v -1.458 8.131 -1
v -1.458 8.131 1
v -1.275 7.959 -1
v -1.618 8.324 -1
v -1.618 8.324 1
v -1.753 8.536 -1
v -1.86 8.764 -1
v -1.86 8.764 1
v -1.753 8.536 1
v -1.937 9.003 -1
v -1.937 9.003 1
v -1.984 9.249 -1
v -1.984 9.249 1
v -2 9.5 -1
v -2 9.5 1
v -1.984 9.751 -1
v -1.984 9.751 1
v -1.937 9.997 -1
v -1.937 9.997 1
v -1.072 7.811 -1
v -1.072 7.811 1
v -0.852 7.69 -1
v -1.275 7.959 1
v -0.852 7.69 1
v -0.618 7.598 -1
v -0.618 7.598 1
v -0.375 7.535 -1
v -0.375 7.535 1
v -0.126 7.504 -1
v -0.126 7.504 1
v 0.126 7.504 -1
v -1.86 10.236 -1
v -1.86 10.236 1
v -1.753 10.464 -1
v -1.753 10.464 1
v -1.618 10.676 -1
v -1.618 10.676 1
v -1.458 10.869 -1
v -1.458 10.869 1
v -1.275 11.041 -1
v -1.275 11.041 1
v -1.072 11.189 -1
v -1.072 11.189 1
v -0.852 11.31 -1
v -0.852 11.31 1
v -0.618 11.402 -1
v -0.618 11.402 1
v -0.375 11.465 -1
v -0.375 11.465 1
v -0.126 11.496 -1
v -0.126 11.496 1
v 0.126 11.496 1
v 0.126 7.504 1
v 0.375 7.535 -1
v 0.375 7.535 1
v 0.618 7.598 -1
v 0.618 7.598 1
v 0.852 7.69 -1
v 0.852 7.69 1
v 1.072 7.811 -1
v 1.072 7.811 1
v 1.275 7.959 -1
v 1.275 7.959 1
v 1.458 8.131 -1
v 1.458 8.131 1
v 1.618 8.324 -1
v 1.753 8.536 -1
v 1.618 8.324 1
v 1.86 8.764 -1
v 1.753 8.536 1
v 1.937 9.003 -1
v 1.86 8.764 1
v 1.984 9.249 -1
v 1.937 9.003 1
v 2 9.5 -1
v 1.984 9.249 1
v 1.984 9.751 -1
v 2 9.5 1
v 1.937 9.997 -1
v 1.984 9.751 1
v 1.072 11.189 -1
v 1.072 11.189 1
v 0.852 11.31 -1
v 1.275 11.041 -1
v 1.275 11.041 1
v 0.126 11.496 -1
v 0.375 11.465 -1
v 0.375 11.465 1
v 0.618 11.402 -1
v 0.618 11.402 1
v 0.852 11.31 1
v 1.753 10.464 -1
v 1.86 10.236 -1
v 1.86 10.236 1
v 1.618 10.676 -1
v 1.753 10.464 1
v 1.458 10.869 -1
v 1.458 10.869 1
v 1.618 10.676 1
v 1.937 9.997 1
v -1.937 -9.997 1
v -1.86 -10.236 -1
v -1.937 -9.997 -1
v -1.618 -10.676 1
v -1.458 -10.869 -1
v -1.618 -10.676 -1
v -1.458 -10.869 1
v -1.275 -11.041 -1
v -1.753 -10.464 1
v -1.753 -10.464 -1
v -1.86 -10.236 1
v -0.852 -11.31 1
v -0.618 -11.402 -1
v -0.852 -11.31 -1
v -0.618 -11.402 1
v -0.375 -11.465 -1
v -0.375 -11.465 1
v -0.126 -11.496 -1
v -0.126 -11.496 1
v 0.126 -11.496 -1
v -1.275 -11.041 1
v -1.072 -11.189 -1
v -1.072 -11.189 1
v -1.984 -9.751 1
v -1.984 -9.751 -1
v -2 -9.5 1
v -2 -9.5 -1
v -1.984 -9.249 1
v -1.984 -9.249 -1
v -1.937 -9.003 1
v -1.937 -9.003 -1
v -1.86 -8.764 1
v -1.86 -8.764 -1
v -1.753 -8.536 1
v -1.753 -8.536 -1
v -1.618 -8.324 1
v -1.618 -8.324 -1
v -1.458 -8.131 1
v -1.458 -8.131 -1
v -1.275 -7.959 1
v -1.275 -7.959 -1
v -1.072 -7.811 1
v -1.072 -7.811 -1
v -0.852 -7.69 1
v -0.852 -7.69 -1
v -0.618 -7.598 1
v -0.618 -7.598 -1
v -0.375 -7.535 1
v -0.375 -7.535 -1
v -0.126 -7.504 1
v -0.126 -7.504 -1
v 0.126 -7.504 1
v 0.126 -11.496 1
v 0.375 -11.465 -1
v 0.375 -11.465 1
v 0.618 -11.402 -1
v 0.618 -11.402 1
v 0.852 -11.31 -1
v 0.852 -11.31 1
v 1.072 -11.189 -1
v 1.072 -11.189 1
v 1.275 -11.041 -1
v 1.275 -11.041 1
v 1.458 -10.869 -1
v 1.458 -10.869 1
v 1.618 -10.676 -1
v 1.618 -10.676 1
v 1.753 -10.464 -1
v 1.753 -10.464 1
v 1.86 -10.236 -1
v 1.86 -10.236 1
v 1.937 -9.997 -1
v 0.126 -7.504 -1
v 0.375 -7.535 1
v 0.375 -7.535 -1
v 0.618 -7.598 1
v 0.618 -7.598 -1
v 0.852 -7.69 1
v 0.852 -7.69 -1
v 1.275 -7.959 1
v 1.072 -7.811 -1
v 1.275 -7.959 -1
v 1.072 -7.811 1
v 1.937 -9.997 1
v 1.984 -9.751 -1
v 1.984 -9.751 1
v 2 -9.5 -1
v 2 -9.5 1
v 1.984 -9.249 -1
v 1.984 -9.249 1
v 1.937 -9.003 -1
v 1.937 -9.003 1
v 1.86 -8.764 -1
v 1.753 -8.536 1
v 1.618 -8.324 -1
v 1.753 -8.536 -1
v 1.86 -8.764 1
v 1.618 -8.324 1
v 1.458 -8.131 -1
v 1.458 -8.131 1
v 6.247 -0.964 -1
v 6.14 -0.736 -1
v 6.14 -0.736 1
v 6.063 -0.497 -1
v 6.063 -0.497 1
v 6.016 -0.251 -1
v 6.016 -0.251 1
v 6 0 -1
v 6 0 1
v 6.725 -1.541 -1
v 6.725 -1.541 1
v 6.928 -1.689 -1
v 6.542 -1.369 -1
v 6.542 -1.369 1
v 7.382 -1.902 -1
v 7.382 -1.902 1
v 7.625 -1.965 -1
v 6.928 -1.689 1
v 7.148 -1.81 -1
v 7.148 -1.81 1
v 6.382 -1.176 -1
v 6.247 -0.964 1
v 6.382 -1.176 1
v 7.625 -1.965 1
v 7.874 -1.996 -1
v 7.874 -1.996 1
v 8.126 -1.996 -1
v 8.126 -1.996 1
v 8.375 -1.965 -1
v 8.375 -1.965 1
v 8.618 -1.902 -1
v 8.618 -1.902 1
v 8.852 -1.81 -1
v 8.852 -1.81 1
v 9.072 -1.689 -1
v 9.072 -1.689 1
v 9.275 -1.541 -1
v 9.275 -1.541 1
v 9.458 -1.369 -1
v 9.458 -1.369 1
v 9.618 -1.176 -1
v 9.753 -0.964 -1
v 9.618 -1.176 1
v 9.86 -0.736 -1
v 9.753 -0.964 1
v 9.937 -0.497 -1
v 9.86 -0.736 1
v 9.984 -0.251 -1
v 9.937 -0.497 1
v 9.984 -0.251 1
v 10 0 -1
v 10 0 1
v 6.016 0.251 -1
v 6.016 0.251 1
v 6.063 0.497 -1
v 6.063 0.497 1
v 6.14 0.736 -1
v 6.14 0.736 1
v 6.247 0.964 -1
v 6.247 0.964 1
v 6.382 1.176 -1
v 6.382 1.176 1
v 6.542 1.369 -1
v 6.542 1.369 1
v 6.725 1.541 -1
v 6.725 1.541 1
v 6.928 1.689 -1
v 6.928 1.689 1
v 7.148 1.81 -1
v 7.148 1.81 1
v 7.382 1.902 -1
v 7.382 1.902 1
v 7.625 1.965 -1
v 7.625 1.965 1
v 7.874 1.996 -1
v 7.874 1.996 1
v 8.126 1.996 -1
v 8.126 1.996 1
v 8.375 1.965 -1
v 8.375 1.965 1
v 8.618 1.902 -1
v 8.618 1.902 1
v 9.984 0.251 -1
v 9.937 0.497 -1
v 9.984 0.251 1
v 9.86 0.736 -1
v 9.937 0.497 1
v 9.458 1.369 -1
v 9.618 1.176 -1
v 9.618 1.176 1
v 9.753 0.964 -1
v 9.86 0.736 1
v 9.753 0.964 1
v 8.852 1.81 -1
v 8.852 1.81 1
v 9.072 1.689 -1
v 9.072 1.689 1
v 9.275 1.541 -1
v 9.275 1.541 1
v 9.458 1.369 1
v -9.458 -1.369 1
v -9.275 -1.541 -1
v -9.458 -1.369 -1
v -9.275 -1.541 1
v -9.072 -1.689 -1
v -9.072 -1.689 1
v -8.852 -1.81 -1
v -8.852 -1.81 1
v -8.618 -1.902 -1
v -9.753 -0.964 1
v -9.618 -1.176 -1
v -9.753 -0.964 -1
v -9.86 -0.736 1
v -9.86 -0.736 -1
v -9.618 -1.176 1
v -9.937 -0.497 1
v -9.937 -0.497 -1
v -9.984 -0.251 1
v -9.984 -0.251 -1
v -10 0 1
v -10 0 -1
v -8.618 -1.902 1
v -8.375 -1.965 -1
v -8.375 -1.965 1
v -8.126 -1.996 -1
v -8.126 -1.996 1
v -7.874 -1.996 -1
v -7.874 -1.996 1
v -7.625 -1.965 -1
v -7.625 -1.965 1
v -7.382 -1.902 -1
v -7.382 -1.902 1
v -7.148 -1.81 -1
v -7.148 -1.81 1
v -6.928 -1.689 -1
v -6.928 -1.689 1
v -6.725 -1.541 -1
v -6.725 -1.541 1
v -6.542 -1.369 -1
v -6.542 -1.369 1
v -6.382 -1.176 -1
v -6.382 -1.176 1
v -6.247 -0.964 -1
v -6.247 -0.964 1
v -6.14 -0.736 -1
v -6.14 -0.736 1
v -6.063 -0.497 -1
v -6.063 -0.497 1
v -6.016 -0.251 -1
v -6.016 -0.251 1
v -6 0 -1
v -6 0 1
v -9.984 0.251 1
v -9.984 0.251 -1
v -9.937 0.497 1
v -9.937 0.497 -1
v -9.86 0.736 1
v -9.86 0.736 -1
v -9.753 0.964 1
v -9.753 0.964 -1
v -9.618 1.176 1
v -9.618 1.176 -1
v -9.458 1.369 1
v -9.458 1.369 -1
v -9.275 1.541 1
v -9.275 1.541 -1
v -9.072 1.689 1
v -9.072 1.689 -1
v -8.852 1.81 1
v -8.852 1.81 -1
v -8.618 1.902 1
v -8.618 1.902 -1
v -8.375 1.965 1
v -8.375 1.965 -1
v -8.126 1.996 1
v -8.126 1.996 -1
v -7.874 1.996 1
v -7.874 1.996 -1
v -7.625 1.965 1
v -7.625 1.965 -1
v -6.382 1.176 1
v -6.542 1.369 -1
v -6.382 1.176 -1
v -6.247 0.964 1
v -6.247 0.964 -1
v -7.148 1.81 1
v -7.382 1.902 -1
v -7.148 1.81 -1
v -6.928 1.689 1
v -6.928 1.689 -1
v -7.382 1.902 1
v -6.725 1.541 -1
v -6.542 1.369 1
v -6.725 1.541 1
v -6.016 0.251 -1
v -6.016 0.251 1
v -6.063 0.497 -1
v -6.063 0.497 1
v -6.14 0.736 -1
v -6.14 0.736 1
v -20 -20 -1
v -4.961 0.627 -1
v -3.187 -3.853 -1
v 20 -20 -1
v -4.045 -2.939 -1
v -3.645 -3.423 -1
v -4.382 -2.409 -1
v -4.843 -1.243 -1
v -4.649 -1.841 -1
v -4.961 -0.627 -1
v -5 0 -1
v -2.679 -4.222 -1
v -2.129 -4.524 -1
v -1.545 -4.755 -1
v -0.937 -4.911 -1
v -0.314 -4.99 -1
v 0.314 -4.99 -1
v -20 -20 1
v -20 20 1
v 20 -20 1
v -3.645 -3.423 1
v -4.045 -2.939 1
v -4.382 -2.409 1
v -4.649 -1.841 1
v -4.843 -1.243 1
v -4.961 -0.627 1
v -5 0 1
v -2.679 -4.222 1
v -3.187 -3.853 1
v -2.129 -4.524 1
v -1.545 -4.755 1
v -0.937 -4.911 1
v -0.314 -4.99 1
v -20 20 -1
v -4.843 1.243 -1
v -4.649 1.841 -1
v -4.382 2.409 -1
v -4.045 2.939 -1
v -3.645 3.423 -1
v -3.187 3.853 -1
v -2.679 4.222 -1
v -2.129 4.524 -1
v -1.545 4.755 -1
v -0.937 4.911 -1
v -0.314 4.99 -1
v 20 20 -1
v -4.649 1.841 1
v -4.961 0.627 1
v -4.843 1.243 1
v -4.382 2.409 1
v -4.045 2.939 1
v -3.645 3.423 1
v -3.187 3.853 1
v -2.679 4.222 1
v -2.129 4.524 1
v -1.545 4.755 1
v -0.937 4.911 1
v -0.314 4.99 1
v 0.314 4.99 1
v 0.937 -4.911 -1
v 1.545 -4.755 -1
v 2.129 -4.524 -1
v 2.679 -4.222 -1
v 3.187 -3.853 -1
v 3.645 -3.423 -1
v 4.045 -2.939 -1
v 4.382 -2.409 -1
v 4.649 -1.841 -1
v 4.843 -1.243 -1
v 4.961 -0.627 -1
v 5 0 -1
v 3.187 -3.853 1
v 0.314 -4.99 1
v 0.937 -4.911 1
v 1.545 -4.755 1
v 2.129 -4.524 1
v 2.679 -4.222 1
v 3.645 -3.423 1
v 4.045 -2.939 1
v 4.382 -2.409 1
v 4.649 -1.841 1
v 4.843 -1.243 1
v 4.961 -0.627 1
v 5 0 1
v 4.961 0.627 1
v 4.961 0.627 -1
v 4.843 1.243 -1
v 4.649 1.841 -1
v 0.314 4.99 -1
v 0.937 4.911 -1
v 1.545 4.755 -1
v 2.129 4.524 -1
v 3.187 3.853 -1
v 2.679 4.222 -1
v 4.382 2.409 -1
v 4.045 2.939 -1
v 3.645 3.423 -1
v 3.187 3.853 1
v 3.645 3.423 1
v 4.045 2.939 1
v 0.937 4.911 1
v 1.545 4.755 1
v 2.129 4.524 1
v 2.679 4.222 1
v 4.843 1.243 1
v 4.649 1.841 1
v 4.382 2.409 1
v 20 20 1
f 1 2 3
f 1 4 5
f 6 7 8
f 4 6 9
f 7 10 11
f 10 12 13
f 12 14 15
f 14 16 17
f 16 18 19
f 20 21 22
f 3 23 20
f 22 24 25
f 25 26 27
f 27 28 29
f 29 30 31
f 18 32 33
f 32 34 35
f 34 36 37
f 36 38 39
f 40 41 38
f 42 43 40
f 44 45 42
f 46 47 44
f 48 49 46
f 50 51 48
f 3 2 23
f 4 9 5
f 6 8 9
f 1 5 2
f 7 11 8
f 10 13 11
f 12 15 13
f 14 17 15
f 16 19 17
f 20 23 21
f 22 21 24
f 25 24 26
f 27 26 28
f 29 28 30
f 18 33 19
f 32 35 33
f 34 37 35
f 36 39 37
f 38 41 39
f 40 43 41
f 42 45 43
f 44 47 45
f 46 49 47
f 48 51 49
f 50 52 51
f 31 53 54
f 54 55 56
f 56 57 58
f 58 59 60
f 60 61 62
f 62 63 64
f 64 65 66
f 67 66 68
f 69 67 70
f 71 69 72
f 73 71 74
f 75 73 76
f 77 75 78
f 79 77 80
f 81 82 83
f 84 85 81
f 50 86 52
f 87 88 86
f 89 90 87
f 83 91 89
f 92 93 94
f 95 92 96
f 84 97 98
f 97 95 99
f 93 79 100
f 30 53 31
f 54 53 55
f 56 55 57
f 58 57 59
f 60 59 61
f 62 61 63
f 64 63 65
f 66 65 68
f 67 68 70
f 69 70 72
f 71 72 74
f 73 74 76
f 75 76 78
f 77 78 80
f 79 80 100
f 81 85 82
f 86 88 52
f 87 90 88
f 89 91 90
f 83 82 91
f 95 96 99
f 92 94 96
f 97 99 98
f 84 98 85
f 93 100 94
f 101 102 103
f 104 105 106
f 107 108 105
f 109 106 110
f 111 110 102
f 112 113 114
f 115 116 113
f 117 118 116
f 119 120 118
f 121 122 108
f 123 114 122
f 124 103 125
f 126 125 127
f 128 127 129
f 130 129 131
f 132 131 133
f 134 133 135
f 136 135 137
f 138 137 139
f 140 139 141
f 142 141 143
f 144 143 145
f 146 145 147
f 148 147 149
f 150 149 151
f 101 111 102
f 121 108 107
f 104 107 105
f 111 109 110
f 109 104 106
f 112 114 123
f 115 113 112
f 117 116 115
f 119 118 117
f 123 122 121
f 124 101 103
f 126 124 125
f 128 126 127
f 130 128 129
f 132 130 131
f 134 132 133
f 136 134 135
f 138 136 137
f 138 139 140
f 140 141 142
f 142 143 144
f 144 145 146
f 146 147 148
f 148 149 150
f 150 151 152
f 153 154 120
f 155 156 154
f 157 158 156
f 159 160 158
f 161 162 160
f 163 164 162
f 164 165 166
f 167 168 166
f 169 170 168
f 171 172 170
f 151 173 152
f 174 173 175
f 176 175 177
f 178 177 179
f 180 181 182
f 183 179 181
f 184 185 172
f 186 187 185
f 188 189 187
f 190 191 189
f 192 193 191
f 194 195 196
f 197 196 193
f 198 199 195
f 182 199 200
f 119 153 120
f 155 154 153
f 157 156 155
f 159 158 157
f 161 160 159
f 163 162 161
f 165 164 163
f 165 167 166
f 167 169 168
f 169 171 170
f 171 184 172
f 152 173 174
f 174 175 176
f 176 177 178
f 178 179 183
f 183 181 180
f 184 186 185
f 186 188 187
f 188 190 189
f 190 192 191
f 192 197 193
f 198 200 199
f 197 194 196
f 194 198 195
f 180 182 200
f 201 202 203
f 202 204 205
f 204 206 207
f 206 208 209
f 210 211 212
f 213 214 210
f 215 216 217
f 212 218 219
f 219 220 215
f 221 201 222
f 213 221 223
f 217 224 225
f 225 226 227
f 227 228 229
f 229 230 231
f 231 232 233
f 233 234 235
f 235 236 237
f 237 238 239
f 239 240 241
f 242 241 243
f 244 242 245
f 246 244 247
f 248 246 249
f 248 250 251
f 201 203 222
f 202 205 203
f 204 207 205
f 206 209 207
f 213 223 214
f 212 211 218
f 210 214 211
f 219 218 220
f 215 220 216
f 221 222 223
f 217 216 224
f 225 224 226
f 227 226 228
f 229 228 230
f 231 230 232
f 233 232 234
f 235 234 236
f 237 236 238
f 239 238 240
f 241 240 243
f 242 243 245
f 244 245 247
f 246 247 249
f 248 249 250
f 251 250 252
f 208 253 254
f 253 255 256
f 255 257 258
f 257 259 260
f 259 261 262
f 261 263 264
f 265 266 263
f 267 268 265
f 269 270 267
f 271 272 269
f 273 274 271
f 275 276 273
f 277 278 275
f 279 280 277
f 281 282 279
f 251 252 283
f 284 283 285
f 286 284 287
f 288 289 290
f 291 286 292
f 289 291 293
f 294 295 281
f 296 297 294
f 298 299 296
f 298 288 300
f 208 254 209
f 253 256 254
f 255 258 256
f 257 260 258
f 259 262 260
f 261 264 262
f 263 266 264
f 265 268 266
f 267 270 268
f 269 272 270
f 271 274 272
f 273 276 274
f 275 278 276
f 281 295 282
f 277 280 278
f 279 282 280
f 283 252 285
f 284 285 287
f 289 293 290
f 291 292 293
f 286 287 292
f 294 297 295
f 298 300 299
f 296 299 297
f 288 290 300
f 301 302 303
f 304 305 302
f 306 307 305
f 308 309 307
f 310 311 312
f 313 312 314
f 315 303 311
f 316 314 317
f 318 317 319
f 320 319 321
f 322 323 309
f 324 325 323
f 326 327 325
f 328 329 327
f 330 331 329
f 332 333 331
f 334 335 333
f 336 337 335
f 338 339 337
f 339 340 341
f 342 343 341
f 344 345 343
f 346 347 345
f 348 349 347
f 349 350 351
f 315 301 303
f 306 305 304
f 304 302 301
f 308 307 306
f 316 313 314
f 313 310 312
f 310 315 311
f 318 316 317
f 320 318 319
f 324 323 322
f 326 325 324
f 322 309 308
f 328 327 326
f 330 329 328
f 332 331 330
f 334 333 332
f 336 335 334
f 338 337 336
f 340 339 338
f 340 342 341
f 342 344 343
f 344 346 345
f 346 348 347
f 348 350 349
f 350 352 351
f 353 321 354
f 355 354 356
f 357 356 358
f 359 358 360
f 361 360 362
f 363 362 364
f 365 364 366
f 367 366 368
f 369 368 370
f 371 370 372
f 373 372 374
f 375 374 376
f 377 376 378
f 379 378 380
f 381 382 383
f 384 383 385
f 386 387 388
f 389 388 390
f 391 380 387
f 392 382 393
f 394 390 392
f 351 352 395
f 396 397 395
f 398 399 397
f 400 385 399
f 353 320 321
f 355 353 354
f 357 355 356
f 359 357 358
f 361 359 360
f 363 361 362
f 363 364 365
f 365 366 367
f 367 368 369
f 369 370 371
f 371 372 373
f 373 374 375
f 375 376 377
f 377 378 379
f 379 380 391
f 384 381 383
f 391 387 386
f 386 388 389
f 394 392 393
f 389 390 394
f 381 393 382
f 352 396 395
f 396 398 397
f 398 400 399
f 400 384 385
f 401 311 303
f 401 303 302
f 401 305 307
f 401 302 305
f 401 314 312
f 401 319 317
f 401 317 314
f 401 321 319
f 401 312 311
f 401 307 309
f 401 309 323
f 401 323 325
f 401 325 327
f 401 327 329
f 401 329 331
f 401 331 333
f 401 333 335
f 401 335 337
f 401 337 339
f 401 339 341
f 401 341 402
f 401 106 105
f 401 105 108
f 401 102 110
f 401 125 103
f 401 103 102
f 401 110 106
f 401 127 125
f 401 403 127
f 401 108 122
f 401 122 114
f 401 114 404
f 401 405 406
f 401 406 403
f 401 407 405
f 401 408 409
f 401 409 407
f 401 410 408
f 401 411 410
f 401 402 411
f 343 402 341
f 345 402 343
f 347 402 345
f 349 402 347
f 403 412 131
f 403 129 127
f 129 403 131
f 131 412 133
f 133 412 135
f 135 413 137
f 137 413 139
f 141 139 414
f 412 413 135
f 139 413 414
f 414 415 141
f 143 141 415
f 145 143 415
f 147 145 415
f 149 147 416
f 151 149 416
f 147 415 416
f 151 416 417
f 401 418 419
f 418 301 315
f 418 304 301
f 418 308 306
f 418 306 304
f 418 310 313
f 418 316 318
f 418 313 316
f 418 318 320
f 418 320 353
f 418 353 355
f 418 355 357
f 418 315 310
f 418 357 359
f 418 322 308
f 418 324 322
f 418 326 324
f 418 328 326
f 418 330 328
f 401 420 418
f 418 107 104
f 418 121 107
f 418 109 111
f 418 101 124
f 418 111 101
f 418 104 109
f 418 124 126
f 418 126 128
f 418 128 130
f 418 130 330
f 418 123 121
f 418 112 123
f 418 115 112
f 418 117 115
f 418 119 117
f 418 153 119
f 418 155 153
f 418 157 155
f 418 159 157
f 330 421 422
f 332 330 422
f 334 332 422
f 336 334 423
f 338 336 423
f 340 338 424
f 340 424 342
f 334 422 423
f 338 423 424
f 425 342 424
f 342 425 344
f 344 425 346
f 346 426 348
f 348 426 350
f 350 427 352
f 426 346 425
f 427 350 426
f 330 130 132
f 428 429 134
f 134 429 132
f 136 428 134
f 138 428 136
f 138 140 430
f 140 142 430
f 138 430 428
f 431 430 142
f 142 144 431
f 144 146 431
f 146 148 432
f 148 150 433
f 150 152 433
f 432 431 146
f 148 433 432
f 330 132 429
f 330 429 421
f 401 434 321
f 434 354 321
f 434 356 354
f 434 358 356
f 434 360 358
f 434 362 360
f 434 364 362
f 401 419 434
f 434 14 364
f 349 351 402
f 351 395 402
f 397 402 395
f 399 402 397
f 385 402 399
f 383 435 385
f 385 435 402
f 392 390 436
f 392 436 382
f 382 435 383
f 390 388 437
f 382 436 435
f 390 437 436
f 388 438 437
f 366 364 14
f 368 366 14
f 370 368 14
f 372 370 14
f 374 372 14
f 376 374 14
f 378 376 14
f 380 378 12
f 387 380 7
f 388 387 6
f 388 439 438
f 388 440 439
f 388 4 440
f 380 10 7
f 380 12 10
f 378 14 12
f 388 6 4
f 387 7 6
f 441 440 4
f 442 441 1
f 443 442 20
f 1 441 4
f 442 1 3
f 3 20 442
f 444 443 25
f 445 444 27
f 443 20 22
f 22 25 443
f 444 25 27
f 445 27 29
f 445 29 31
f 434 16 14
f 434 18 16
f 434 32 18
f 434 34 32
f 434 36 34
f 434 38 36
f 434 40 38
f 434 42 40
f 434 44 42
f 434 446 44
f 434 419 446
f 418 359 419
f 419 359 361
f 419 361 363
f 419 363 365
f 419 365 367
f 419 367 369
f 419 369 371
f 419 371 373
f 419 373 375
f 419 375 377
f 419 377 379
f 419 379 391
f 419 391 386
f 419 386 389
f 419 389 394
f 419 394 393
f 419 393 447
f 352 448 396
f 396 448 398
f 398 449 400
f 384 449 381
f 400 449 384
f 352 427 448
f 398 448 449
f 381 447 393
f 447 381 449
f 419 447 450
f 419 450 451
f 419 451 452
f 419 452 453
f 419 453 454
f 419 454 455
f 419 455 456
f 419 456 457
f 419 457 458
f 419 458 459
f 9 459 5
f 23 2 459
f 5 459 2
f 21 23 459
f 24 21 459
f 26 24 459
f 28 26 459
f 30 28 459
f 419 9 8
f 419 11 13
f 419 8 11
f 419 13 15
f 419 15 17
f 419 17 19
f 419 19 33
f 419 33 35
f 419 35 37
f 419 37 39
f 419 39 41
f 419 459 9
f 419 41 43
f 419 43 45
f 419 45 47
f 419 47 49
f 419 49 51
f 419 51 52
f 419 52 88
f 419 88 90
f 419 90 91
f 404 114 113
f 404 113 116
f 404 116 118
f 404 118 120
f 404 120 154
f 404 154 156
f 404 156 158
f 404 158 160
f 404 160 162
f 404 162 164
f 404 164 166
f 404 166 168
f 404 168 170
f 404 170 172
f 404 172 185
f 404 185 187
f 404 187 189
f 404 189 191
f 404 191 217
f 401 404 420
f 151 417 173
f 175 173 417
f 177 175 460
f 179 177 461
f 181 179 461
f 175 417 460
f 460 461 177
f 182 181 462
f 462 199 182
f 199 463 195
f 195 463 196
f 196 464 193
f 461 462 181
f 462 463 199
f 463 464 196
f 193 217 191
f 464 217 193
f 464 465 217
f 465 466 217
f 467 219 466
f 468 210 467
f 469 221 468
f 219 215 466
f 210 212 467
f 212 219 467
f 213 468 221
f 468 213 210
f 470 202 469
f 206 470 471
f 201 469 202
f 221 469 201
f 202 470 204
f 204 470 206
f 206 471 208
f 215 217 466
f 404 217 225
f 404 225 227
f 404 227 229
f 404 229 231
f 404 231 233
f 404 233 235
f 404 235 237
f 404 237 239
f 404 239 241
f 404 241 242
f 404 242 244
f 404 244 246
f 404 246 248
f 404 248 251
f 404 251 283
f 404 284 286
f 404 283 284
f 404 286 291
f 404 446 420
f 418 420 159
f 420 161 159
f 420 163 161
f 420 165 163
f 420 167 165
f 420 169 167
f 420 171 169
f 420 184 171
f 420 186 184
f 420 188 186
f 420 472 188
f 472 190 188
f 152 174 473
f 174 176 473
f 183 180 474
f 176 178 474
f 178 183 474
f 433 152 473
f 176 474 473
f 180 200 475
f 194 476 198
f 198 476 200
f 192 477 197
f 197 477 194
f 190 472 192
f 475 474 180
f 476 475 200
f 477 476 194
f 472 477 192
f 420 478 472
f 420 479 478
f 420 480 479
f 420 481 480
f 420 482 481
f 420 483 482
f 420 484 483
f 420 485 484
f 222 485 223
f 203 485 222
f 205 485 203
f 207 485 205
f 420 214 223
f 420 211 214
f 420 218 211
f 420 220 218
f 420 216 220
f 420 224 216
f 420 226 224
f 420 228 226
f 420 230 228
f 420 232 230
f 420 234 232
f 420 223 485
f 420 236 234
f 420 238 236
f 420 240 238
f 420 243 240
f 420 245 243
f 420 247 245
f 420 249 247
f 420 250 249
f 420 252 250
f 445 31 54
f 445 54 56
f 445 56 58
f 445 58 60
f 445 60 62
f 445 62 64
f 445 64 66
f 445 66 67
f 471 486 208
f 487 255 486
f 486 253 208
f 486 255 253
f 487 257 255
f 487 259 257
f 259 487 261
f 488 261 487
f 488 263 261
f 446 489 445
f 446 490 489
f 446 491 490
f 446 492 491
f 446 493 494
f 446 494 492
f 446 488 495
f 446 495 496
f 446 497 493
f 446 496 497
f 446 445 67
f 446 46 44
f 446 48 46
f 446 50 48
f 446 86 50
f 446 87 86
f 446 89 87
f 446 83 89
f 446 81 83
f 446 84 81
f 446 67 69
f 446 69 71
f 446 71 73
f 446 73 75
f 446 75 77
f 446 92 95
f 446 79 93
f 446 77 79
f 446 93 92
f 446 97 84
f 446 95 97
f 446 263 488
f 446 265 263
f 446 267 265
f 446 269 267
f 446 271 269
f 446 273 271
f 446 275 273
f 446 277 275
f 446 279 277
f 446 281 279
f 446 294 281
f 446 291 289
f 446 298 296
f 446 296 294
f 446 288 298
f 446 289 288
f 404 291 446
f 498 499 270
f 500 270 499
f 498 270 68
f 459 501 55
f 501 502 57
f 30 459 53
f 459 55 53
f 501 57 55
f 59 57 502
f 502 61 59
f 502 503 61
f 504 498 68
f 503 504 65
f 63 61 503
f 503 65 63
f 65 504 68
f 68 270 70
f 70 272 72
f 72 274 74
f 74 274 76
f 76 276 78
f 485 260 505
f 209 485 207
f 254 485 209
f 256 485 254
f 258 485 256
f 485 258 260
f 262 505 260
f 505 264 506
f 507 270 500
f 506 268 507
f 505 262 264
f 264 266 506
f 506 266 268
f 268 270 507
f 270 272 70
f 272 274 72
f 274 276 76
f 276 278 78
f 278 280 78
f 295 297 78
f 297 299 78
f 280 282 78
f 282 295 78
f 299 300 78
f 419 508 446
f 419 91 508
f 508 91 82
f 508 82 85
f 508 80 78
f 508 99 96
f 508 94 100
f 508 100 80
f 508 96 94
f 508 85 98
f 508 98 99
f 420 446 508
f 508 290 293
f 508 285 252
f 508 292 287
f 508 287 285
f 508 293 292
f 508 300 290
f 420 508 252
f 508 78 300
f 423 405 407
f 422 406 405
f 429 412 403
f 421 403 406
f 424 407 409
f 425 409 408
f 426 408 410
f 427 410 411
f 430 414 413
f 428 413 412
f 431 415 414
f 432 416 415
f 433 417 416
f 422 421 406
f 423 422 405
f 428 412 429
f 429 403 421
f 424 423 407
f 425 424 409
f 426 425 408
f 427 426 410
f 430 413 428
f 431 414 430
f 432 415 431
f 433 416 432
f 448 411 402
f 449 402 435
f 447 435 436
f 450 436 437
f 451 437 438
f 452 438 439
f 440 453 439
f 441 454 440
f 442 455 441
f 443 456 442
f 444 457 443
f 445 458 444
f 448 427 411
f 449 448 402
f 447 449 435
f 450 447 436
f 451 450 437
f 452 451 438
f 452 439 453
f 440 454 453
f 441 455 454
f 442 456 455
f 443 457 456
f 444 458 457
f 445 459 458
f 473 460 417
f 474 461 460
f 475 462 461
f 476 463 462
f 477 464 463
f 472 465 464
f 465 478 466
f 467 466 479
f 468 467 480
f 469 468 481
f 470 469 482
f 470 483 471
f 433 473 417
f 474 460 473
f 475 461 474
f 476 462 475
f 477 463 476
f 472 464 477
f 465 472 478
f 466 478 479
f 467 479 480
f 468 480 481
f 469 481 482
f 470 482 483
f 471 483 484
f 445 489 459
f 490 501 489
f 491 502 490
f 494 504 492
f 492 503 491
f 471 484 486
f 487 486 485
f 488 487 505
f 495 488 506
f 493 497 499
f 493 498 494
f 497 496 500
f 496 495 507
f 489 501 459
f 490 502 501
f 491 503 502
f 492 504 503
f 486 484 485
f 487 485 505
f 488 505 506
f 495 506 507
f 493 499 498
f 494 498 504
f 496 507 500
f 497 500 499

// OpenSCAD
// file: ../design_params.scad
// ============================================================
// STARLING SHARED DESIGN PARAMETERS — single source of truth for
// every dimension two parts must agree on.
//
// Consumers:
//   - every part in cad/ does        include <design_params.scad>
//   - parts in cad/calibration/ do   include <../design_params.scad>
//   - scripts/check_params.py FAILS the build if any of these names
//     is re-declared anywhere else — change values HERE only.
//
// Keep this file to simple `name = value;` lines so the tooling can
// parse it. One-off experiments: `openscad -D name=value` beats the
// include, no need to edit this file.
// ============================================================

// --- The paper tube (bought part, consumable) ---
tube_od     = 52.95;   // measured tube OD — verify with cad/calibration/tube_fit_ring.scad
tube_wall   = 3;       // paper wall thickness (measure your tube)
tube_length = 540;

// --- Printed-part fits ---
sleeve_clearance = 0;  // added to every sleeve bore diameter; tune via the fit ring
fit_tol          = 0.2; // clearance for printed slots/pockets
sleeve_wall      = 3;  // wall thickness of printed sleeves

// --- Wing spar chain (rib holes = adapter sockets = carbon rods) ---
spar_rod_d    = 6;     // carbon rod diameter
spar_hole_d   = 6.2;   // printed hole for that rod
spar_spacing  = 20;    // chordwise distance between the two spars
spar_y_offset = 1.5;   // spar line sits this far above the rib chord line

// --- Wing geometry ---
rib_chord     = 100;
naca_code     = 2415;  // cambered lifting section
rib_thickness = 2;

// --- Wing adapter <-> root rib interface ---
wing_tab_thickness = 11; // adapter tab; the root-rib window = this + fit_tol
wing_tab_span      = 15; // how far the tab reaches out from the sleeve
adapter_length     = 40; // sleeve length = tab chord extent

// --- Stations along the tube (assembly; wing slides for CG trim) ---
wing_station       = 300; // wing adapter position, measured from the motor face
tail_tube_stop     = 54;  // tube bottoms out here inside the tail sleeve (rim top)
nose_sleeve_length = 20;  // how far the nose cone slides over the tube

// --- Tail servos (9 g / SG90 class) ---
servo_body   = [23, 12.2]; // [length, width]
servo_flange = [32, 12.2];

// --- Motor (22xx class, rear pusher) ---
motor_shaft_hole_d = 10;
motor_screw_hole_d = 4;
motor_pattern_x    = 16;  // screw pattern
motor_pattern_y    = 19;
// main file
// MOTOR MOUNT TEST — flat plate with the motor screw pattern and shaft
// hole from design_params, to verify against the real motor before
// printing the whole tail.

include <../design_params.scad>

plate_width     = 40;
plate_height    = 40;
plate_thickness = 2;

$fn = 50;

difference() {
    cube([plate_width, plate_height, plate_thickness], center = true);

    // Center shaft hole
    cylinder(h = plate_thickness + 2, d = motor_shaft_hole_d, center = true);

    // Screw pattern — the same "+" layout the tail's motor face uses
    for (p = [[0,  motor_pattern_y / 2],
              [0, -motor_pattern_y / 2],
              [ motor_pattern_x / 2, 0],
              [-motor_pattern_x / 2, 0]])
        translate([p[0], p[1], 0])
            cylinder(h = plate_thickness + 2, d = motor_screw_hole_d, center = true);
}
